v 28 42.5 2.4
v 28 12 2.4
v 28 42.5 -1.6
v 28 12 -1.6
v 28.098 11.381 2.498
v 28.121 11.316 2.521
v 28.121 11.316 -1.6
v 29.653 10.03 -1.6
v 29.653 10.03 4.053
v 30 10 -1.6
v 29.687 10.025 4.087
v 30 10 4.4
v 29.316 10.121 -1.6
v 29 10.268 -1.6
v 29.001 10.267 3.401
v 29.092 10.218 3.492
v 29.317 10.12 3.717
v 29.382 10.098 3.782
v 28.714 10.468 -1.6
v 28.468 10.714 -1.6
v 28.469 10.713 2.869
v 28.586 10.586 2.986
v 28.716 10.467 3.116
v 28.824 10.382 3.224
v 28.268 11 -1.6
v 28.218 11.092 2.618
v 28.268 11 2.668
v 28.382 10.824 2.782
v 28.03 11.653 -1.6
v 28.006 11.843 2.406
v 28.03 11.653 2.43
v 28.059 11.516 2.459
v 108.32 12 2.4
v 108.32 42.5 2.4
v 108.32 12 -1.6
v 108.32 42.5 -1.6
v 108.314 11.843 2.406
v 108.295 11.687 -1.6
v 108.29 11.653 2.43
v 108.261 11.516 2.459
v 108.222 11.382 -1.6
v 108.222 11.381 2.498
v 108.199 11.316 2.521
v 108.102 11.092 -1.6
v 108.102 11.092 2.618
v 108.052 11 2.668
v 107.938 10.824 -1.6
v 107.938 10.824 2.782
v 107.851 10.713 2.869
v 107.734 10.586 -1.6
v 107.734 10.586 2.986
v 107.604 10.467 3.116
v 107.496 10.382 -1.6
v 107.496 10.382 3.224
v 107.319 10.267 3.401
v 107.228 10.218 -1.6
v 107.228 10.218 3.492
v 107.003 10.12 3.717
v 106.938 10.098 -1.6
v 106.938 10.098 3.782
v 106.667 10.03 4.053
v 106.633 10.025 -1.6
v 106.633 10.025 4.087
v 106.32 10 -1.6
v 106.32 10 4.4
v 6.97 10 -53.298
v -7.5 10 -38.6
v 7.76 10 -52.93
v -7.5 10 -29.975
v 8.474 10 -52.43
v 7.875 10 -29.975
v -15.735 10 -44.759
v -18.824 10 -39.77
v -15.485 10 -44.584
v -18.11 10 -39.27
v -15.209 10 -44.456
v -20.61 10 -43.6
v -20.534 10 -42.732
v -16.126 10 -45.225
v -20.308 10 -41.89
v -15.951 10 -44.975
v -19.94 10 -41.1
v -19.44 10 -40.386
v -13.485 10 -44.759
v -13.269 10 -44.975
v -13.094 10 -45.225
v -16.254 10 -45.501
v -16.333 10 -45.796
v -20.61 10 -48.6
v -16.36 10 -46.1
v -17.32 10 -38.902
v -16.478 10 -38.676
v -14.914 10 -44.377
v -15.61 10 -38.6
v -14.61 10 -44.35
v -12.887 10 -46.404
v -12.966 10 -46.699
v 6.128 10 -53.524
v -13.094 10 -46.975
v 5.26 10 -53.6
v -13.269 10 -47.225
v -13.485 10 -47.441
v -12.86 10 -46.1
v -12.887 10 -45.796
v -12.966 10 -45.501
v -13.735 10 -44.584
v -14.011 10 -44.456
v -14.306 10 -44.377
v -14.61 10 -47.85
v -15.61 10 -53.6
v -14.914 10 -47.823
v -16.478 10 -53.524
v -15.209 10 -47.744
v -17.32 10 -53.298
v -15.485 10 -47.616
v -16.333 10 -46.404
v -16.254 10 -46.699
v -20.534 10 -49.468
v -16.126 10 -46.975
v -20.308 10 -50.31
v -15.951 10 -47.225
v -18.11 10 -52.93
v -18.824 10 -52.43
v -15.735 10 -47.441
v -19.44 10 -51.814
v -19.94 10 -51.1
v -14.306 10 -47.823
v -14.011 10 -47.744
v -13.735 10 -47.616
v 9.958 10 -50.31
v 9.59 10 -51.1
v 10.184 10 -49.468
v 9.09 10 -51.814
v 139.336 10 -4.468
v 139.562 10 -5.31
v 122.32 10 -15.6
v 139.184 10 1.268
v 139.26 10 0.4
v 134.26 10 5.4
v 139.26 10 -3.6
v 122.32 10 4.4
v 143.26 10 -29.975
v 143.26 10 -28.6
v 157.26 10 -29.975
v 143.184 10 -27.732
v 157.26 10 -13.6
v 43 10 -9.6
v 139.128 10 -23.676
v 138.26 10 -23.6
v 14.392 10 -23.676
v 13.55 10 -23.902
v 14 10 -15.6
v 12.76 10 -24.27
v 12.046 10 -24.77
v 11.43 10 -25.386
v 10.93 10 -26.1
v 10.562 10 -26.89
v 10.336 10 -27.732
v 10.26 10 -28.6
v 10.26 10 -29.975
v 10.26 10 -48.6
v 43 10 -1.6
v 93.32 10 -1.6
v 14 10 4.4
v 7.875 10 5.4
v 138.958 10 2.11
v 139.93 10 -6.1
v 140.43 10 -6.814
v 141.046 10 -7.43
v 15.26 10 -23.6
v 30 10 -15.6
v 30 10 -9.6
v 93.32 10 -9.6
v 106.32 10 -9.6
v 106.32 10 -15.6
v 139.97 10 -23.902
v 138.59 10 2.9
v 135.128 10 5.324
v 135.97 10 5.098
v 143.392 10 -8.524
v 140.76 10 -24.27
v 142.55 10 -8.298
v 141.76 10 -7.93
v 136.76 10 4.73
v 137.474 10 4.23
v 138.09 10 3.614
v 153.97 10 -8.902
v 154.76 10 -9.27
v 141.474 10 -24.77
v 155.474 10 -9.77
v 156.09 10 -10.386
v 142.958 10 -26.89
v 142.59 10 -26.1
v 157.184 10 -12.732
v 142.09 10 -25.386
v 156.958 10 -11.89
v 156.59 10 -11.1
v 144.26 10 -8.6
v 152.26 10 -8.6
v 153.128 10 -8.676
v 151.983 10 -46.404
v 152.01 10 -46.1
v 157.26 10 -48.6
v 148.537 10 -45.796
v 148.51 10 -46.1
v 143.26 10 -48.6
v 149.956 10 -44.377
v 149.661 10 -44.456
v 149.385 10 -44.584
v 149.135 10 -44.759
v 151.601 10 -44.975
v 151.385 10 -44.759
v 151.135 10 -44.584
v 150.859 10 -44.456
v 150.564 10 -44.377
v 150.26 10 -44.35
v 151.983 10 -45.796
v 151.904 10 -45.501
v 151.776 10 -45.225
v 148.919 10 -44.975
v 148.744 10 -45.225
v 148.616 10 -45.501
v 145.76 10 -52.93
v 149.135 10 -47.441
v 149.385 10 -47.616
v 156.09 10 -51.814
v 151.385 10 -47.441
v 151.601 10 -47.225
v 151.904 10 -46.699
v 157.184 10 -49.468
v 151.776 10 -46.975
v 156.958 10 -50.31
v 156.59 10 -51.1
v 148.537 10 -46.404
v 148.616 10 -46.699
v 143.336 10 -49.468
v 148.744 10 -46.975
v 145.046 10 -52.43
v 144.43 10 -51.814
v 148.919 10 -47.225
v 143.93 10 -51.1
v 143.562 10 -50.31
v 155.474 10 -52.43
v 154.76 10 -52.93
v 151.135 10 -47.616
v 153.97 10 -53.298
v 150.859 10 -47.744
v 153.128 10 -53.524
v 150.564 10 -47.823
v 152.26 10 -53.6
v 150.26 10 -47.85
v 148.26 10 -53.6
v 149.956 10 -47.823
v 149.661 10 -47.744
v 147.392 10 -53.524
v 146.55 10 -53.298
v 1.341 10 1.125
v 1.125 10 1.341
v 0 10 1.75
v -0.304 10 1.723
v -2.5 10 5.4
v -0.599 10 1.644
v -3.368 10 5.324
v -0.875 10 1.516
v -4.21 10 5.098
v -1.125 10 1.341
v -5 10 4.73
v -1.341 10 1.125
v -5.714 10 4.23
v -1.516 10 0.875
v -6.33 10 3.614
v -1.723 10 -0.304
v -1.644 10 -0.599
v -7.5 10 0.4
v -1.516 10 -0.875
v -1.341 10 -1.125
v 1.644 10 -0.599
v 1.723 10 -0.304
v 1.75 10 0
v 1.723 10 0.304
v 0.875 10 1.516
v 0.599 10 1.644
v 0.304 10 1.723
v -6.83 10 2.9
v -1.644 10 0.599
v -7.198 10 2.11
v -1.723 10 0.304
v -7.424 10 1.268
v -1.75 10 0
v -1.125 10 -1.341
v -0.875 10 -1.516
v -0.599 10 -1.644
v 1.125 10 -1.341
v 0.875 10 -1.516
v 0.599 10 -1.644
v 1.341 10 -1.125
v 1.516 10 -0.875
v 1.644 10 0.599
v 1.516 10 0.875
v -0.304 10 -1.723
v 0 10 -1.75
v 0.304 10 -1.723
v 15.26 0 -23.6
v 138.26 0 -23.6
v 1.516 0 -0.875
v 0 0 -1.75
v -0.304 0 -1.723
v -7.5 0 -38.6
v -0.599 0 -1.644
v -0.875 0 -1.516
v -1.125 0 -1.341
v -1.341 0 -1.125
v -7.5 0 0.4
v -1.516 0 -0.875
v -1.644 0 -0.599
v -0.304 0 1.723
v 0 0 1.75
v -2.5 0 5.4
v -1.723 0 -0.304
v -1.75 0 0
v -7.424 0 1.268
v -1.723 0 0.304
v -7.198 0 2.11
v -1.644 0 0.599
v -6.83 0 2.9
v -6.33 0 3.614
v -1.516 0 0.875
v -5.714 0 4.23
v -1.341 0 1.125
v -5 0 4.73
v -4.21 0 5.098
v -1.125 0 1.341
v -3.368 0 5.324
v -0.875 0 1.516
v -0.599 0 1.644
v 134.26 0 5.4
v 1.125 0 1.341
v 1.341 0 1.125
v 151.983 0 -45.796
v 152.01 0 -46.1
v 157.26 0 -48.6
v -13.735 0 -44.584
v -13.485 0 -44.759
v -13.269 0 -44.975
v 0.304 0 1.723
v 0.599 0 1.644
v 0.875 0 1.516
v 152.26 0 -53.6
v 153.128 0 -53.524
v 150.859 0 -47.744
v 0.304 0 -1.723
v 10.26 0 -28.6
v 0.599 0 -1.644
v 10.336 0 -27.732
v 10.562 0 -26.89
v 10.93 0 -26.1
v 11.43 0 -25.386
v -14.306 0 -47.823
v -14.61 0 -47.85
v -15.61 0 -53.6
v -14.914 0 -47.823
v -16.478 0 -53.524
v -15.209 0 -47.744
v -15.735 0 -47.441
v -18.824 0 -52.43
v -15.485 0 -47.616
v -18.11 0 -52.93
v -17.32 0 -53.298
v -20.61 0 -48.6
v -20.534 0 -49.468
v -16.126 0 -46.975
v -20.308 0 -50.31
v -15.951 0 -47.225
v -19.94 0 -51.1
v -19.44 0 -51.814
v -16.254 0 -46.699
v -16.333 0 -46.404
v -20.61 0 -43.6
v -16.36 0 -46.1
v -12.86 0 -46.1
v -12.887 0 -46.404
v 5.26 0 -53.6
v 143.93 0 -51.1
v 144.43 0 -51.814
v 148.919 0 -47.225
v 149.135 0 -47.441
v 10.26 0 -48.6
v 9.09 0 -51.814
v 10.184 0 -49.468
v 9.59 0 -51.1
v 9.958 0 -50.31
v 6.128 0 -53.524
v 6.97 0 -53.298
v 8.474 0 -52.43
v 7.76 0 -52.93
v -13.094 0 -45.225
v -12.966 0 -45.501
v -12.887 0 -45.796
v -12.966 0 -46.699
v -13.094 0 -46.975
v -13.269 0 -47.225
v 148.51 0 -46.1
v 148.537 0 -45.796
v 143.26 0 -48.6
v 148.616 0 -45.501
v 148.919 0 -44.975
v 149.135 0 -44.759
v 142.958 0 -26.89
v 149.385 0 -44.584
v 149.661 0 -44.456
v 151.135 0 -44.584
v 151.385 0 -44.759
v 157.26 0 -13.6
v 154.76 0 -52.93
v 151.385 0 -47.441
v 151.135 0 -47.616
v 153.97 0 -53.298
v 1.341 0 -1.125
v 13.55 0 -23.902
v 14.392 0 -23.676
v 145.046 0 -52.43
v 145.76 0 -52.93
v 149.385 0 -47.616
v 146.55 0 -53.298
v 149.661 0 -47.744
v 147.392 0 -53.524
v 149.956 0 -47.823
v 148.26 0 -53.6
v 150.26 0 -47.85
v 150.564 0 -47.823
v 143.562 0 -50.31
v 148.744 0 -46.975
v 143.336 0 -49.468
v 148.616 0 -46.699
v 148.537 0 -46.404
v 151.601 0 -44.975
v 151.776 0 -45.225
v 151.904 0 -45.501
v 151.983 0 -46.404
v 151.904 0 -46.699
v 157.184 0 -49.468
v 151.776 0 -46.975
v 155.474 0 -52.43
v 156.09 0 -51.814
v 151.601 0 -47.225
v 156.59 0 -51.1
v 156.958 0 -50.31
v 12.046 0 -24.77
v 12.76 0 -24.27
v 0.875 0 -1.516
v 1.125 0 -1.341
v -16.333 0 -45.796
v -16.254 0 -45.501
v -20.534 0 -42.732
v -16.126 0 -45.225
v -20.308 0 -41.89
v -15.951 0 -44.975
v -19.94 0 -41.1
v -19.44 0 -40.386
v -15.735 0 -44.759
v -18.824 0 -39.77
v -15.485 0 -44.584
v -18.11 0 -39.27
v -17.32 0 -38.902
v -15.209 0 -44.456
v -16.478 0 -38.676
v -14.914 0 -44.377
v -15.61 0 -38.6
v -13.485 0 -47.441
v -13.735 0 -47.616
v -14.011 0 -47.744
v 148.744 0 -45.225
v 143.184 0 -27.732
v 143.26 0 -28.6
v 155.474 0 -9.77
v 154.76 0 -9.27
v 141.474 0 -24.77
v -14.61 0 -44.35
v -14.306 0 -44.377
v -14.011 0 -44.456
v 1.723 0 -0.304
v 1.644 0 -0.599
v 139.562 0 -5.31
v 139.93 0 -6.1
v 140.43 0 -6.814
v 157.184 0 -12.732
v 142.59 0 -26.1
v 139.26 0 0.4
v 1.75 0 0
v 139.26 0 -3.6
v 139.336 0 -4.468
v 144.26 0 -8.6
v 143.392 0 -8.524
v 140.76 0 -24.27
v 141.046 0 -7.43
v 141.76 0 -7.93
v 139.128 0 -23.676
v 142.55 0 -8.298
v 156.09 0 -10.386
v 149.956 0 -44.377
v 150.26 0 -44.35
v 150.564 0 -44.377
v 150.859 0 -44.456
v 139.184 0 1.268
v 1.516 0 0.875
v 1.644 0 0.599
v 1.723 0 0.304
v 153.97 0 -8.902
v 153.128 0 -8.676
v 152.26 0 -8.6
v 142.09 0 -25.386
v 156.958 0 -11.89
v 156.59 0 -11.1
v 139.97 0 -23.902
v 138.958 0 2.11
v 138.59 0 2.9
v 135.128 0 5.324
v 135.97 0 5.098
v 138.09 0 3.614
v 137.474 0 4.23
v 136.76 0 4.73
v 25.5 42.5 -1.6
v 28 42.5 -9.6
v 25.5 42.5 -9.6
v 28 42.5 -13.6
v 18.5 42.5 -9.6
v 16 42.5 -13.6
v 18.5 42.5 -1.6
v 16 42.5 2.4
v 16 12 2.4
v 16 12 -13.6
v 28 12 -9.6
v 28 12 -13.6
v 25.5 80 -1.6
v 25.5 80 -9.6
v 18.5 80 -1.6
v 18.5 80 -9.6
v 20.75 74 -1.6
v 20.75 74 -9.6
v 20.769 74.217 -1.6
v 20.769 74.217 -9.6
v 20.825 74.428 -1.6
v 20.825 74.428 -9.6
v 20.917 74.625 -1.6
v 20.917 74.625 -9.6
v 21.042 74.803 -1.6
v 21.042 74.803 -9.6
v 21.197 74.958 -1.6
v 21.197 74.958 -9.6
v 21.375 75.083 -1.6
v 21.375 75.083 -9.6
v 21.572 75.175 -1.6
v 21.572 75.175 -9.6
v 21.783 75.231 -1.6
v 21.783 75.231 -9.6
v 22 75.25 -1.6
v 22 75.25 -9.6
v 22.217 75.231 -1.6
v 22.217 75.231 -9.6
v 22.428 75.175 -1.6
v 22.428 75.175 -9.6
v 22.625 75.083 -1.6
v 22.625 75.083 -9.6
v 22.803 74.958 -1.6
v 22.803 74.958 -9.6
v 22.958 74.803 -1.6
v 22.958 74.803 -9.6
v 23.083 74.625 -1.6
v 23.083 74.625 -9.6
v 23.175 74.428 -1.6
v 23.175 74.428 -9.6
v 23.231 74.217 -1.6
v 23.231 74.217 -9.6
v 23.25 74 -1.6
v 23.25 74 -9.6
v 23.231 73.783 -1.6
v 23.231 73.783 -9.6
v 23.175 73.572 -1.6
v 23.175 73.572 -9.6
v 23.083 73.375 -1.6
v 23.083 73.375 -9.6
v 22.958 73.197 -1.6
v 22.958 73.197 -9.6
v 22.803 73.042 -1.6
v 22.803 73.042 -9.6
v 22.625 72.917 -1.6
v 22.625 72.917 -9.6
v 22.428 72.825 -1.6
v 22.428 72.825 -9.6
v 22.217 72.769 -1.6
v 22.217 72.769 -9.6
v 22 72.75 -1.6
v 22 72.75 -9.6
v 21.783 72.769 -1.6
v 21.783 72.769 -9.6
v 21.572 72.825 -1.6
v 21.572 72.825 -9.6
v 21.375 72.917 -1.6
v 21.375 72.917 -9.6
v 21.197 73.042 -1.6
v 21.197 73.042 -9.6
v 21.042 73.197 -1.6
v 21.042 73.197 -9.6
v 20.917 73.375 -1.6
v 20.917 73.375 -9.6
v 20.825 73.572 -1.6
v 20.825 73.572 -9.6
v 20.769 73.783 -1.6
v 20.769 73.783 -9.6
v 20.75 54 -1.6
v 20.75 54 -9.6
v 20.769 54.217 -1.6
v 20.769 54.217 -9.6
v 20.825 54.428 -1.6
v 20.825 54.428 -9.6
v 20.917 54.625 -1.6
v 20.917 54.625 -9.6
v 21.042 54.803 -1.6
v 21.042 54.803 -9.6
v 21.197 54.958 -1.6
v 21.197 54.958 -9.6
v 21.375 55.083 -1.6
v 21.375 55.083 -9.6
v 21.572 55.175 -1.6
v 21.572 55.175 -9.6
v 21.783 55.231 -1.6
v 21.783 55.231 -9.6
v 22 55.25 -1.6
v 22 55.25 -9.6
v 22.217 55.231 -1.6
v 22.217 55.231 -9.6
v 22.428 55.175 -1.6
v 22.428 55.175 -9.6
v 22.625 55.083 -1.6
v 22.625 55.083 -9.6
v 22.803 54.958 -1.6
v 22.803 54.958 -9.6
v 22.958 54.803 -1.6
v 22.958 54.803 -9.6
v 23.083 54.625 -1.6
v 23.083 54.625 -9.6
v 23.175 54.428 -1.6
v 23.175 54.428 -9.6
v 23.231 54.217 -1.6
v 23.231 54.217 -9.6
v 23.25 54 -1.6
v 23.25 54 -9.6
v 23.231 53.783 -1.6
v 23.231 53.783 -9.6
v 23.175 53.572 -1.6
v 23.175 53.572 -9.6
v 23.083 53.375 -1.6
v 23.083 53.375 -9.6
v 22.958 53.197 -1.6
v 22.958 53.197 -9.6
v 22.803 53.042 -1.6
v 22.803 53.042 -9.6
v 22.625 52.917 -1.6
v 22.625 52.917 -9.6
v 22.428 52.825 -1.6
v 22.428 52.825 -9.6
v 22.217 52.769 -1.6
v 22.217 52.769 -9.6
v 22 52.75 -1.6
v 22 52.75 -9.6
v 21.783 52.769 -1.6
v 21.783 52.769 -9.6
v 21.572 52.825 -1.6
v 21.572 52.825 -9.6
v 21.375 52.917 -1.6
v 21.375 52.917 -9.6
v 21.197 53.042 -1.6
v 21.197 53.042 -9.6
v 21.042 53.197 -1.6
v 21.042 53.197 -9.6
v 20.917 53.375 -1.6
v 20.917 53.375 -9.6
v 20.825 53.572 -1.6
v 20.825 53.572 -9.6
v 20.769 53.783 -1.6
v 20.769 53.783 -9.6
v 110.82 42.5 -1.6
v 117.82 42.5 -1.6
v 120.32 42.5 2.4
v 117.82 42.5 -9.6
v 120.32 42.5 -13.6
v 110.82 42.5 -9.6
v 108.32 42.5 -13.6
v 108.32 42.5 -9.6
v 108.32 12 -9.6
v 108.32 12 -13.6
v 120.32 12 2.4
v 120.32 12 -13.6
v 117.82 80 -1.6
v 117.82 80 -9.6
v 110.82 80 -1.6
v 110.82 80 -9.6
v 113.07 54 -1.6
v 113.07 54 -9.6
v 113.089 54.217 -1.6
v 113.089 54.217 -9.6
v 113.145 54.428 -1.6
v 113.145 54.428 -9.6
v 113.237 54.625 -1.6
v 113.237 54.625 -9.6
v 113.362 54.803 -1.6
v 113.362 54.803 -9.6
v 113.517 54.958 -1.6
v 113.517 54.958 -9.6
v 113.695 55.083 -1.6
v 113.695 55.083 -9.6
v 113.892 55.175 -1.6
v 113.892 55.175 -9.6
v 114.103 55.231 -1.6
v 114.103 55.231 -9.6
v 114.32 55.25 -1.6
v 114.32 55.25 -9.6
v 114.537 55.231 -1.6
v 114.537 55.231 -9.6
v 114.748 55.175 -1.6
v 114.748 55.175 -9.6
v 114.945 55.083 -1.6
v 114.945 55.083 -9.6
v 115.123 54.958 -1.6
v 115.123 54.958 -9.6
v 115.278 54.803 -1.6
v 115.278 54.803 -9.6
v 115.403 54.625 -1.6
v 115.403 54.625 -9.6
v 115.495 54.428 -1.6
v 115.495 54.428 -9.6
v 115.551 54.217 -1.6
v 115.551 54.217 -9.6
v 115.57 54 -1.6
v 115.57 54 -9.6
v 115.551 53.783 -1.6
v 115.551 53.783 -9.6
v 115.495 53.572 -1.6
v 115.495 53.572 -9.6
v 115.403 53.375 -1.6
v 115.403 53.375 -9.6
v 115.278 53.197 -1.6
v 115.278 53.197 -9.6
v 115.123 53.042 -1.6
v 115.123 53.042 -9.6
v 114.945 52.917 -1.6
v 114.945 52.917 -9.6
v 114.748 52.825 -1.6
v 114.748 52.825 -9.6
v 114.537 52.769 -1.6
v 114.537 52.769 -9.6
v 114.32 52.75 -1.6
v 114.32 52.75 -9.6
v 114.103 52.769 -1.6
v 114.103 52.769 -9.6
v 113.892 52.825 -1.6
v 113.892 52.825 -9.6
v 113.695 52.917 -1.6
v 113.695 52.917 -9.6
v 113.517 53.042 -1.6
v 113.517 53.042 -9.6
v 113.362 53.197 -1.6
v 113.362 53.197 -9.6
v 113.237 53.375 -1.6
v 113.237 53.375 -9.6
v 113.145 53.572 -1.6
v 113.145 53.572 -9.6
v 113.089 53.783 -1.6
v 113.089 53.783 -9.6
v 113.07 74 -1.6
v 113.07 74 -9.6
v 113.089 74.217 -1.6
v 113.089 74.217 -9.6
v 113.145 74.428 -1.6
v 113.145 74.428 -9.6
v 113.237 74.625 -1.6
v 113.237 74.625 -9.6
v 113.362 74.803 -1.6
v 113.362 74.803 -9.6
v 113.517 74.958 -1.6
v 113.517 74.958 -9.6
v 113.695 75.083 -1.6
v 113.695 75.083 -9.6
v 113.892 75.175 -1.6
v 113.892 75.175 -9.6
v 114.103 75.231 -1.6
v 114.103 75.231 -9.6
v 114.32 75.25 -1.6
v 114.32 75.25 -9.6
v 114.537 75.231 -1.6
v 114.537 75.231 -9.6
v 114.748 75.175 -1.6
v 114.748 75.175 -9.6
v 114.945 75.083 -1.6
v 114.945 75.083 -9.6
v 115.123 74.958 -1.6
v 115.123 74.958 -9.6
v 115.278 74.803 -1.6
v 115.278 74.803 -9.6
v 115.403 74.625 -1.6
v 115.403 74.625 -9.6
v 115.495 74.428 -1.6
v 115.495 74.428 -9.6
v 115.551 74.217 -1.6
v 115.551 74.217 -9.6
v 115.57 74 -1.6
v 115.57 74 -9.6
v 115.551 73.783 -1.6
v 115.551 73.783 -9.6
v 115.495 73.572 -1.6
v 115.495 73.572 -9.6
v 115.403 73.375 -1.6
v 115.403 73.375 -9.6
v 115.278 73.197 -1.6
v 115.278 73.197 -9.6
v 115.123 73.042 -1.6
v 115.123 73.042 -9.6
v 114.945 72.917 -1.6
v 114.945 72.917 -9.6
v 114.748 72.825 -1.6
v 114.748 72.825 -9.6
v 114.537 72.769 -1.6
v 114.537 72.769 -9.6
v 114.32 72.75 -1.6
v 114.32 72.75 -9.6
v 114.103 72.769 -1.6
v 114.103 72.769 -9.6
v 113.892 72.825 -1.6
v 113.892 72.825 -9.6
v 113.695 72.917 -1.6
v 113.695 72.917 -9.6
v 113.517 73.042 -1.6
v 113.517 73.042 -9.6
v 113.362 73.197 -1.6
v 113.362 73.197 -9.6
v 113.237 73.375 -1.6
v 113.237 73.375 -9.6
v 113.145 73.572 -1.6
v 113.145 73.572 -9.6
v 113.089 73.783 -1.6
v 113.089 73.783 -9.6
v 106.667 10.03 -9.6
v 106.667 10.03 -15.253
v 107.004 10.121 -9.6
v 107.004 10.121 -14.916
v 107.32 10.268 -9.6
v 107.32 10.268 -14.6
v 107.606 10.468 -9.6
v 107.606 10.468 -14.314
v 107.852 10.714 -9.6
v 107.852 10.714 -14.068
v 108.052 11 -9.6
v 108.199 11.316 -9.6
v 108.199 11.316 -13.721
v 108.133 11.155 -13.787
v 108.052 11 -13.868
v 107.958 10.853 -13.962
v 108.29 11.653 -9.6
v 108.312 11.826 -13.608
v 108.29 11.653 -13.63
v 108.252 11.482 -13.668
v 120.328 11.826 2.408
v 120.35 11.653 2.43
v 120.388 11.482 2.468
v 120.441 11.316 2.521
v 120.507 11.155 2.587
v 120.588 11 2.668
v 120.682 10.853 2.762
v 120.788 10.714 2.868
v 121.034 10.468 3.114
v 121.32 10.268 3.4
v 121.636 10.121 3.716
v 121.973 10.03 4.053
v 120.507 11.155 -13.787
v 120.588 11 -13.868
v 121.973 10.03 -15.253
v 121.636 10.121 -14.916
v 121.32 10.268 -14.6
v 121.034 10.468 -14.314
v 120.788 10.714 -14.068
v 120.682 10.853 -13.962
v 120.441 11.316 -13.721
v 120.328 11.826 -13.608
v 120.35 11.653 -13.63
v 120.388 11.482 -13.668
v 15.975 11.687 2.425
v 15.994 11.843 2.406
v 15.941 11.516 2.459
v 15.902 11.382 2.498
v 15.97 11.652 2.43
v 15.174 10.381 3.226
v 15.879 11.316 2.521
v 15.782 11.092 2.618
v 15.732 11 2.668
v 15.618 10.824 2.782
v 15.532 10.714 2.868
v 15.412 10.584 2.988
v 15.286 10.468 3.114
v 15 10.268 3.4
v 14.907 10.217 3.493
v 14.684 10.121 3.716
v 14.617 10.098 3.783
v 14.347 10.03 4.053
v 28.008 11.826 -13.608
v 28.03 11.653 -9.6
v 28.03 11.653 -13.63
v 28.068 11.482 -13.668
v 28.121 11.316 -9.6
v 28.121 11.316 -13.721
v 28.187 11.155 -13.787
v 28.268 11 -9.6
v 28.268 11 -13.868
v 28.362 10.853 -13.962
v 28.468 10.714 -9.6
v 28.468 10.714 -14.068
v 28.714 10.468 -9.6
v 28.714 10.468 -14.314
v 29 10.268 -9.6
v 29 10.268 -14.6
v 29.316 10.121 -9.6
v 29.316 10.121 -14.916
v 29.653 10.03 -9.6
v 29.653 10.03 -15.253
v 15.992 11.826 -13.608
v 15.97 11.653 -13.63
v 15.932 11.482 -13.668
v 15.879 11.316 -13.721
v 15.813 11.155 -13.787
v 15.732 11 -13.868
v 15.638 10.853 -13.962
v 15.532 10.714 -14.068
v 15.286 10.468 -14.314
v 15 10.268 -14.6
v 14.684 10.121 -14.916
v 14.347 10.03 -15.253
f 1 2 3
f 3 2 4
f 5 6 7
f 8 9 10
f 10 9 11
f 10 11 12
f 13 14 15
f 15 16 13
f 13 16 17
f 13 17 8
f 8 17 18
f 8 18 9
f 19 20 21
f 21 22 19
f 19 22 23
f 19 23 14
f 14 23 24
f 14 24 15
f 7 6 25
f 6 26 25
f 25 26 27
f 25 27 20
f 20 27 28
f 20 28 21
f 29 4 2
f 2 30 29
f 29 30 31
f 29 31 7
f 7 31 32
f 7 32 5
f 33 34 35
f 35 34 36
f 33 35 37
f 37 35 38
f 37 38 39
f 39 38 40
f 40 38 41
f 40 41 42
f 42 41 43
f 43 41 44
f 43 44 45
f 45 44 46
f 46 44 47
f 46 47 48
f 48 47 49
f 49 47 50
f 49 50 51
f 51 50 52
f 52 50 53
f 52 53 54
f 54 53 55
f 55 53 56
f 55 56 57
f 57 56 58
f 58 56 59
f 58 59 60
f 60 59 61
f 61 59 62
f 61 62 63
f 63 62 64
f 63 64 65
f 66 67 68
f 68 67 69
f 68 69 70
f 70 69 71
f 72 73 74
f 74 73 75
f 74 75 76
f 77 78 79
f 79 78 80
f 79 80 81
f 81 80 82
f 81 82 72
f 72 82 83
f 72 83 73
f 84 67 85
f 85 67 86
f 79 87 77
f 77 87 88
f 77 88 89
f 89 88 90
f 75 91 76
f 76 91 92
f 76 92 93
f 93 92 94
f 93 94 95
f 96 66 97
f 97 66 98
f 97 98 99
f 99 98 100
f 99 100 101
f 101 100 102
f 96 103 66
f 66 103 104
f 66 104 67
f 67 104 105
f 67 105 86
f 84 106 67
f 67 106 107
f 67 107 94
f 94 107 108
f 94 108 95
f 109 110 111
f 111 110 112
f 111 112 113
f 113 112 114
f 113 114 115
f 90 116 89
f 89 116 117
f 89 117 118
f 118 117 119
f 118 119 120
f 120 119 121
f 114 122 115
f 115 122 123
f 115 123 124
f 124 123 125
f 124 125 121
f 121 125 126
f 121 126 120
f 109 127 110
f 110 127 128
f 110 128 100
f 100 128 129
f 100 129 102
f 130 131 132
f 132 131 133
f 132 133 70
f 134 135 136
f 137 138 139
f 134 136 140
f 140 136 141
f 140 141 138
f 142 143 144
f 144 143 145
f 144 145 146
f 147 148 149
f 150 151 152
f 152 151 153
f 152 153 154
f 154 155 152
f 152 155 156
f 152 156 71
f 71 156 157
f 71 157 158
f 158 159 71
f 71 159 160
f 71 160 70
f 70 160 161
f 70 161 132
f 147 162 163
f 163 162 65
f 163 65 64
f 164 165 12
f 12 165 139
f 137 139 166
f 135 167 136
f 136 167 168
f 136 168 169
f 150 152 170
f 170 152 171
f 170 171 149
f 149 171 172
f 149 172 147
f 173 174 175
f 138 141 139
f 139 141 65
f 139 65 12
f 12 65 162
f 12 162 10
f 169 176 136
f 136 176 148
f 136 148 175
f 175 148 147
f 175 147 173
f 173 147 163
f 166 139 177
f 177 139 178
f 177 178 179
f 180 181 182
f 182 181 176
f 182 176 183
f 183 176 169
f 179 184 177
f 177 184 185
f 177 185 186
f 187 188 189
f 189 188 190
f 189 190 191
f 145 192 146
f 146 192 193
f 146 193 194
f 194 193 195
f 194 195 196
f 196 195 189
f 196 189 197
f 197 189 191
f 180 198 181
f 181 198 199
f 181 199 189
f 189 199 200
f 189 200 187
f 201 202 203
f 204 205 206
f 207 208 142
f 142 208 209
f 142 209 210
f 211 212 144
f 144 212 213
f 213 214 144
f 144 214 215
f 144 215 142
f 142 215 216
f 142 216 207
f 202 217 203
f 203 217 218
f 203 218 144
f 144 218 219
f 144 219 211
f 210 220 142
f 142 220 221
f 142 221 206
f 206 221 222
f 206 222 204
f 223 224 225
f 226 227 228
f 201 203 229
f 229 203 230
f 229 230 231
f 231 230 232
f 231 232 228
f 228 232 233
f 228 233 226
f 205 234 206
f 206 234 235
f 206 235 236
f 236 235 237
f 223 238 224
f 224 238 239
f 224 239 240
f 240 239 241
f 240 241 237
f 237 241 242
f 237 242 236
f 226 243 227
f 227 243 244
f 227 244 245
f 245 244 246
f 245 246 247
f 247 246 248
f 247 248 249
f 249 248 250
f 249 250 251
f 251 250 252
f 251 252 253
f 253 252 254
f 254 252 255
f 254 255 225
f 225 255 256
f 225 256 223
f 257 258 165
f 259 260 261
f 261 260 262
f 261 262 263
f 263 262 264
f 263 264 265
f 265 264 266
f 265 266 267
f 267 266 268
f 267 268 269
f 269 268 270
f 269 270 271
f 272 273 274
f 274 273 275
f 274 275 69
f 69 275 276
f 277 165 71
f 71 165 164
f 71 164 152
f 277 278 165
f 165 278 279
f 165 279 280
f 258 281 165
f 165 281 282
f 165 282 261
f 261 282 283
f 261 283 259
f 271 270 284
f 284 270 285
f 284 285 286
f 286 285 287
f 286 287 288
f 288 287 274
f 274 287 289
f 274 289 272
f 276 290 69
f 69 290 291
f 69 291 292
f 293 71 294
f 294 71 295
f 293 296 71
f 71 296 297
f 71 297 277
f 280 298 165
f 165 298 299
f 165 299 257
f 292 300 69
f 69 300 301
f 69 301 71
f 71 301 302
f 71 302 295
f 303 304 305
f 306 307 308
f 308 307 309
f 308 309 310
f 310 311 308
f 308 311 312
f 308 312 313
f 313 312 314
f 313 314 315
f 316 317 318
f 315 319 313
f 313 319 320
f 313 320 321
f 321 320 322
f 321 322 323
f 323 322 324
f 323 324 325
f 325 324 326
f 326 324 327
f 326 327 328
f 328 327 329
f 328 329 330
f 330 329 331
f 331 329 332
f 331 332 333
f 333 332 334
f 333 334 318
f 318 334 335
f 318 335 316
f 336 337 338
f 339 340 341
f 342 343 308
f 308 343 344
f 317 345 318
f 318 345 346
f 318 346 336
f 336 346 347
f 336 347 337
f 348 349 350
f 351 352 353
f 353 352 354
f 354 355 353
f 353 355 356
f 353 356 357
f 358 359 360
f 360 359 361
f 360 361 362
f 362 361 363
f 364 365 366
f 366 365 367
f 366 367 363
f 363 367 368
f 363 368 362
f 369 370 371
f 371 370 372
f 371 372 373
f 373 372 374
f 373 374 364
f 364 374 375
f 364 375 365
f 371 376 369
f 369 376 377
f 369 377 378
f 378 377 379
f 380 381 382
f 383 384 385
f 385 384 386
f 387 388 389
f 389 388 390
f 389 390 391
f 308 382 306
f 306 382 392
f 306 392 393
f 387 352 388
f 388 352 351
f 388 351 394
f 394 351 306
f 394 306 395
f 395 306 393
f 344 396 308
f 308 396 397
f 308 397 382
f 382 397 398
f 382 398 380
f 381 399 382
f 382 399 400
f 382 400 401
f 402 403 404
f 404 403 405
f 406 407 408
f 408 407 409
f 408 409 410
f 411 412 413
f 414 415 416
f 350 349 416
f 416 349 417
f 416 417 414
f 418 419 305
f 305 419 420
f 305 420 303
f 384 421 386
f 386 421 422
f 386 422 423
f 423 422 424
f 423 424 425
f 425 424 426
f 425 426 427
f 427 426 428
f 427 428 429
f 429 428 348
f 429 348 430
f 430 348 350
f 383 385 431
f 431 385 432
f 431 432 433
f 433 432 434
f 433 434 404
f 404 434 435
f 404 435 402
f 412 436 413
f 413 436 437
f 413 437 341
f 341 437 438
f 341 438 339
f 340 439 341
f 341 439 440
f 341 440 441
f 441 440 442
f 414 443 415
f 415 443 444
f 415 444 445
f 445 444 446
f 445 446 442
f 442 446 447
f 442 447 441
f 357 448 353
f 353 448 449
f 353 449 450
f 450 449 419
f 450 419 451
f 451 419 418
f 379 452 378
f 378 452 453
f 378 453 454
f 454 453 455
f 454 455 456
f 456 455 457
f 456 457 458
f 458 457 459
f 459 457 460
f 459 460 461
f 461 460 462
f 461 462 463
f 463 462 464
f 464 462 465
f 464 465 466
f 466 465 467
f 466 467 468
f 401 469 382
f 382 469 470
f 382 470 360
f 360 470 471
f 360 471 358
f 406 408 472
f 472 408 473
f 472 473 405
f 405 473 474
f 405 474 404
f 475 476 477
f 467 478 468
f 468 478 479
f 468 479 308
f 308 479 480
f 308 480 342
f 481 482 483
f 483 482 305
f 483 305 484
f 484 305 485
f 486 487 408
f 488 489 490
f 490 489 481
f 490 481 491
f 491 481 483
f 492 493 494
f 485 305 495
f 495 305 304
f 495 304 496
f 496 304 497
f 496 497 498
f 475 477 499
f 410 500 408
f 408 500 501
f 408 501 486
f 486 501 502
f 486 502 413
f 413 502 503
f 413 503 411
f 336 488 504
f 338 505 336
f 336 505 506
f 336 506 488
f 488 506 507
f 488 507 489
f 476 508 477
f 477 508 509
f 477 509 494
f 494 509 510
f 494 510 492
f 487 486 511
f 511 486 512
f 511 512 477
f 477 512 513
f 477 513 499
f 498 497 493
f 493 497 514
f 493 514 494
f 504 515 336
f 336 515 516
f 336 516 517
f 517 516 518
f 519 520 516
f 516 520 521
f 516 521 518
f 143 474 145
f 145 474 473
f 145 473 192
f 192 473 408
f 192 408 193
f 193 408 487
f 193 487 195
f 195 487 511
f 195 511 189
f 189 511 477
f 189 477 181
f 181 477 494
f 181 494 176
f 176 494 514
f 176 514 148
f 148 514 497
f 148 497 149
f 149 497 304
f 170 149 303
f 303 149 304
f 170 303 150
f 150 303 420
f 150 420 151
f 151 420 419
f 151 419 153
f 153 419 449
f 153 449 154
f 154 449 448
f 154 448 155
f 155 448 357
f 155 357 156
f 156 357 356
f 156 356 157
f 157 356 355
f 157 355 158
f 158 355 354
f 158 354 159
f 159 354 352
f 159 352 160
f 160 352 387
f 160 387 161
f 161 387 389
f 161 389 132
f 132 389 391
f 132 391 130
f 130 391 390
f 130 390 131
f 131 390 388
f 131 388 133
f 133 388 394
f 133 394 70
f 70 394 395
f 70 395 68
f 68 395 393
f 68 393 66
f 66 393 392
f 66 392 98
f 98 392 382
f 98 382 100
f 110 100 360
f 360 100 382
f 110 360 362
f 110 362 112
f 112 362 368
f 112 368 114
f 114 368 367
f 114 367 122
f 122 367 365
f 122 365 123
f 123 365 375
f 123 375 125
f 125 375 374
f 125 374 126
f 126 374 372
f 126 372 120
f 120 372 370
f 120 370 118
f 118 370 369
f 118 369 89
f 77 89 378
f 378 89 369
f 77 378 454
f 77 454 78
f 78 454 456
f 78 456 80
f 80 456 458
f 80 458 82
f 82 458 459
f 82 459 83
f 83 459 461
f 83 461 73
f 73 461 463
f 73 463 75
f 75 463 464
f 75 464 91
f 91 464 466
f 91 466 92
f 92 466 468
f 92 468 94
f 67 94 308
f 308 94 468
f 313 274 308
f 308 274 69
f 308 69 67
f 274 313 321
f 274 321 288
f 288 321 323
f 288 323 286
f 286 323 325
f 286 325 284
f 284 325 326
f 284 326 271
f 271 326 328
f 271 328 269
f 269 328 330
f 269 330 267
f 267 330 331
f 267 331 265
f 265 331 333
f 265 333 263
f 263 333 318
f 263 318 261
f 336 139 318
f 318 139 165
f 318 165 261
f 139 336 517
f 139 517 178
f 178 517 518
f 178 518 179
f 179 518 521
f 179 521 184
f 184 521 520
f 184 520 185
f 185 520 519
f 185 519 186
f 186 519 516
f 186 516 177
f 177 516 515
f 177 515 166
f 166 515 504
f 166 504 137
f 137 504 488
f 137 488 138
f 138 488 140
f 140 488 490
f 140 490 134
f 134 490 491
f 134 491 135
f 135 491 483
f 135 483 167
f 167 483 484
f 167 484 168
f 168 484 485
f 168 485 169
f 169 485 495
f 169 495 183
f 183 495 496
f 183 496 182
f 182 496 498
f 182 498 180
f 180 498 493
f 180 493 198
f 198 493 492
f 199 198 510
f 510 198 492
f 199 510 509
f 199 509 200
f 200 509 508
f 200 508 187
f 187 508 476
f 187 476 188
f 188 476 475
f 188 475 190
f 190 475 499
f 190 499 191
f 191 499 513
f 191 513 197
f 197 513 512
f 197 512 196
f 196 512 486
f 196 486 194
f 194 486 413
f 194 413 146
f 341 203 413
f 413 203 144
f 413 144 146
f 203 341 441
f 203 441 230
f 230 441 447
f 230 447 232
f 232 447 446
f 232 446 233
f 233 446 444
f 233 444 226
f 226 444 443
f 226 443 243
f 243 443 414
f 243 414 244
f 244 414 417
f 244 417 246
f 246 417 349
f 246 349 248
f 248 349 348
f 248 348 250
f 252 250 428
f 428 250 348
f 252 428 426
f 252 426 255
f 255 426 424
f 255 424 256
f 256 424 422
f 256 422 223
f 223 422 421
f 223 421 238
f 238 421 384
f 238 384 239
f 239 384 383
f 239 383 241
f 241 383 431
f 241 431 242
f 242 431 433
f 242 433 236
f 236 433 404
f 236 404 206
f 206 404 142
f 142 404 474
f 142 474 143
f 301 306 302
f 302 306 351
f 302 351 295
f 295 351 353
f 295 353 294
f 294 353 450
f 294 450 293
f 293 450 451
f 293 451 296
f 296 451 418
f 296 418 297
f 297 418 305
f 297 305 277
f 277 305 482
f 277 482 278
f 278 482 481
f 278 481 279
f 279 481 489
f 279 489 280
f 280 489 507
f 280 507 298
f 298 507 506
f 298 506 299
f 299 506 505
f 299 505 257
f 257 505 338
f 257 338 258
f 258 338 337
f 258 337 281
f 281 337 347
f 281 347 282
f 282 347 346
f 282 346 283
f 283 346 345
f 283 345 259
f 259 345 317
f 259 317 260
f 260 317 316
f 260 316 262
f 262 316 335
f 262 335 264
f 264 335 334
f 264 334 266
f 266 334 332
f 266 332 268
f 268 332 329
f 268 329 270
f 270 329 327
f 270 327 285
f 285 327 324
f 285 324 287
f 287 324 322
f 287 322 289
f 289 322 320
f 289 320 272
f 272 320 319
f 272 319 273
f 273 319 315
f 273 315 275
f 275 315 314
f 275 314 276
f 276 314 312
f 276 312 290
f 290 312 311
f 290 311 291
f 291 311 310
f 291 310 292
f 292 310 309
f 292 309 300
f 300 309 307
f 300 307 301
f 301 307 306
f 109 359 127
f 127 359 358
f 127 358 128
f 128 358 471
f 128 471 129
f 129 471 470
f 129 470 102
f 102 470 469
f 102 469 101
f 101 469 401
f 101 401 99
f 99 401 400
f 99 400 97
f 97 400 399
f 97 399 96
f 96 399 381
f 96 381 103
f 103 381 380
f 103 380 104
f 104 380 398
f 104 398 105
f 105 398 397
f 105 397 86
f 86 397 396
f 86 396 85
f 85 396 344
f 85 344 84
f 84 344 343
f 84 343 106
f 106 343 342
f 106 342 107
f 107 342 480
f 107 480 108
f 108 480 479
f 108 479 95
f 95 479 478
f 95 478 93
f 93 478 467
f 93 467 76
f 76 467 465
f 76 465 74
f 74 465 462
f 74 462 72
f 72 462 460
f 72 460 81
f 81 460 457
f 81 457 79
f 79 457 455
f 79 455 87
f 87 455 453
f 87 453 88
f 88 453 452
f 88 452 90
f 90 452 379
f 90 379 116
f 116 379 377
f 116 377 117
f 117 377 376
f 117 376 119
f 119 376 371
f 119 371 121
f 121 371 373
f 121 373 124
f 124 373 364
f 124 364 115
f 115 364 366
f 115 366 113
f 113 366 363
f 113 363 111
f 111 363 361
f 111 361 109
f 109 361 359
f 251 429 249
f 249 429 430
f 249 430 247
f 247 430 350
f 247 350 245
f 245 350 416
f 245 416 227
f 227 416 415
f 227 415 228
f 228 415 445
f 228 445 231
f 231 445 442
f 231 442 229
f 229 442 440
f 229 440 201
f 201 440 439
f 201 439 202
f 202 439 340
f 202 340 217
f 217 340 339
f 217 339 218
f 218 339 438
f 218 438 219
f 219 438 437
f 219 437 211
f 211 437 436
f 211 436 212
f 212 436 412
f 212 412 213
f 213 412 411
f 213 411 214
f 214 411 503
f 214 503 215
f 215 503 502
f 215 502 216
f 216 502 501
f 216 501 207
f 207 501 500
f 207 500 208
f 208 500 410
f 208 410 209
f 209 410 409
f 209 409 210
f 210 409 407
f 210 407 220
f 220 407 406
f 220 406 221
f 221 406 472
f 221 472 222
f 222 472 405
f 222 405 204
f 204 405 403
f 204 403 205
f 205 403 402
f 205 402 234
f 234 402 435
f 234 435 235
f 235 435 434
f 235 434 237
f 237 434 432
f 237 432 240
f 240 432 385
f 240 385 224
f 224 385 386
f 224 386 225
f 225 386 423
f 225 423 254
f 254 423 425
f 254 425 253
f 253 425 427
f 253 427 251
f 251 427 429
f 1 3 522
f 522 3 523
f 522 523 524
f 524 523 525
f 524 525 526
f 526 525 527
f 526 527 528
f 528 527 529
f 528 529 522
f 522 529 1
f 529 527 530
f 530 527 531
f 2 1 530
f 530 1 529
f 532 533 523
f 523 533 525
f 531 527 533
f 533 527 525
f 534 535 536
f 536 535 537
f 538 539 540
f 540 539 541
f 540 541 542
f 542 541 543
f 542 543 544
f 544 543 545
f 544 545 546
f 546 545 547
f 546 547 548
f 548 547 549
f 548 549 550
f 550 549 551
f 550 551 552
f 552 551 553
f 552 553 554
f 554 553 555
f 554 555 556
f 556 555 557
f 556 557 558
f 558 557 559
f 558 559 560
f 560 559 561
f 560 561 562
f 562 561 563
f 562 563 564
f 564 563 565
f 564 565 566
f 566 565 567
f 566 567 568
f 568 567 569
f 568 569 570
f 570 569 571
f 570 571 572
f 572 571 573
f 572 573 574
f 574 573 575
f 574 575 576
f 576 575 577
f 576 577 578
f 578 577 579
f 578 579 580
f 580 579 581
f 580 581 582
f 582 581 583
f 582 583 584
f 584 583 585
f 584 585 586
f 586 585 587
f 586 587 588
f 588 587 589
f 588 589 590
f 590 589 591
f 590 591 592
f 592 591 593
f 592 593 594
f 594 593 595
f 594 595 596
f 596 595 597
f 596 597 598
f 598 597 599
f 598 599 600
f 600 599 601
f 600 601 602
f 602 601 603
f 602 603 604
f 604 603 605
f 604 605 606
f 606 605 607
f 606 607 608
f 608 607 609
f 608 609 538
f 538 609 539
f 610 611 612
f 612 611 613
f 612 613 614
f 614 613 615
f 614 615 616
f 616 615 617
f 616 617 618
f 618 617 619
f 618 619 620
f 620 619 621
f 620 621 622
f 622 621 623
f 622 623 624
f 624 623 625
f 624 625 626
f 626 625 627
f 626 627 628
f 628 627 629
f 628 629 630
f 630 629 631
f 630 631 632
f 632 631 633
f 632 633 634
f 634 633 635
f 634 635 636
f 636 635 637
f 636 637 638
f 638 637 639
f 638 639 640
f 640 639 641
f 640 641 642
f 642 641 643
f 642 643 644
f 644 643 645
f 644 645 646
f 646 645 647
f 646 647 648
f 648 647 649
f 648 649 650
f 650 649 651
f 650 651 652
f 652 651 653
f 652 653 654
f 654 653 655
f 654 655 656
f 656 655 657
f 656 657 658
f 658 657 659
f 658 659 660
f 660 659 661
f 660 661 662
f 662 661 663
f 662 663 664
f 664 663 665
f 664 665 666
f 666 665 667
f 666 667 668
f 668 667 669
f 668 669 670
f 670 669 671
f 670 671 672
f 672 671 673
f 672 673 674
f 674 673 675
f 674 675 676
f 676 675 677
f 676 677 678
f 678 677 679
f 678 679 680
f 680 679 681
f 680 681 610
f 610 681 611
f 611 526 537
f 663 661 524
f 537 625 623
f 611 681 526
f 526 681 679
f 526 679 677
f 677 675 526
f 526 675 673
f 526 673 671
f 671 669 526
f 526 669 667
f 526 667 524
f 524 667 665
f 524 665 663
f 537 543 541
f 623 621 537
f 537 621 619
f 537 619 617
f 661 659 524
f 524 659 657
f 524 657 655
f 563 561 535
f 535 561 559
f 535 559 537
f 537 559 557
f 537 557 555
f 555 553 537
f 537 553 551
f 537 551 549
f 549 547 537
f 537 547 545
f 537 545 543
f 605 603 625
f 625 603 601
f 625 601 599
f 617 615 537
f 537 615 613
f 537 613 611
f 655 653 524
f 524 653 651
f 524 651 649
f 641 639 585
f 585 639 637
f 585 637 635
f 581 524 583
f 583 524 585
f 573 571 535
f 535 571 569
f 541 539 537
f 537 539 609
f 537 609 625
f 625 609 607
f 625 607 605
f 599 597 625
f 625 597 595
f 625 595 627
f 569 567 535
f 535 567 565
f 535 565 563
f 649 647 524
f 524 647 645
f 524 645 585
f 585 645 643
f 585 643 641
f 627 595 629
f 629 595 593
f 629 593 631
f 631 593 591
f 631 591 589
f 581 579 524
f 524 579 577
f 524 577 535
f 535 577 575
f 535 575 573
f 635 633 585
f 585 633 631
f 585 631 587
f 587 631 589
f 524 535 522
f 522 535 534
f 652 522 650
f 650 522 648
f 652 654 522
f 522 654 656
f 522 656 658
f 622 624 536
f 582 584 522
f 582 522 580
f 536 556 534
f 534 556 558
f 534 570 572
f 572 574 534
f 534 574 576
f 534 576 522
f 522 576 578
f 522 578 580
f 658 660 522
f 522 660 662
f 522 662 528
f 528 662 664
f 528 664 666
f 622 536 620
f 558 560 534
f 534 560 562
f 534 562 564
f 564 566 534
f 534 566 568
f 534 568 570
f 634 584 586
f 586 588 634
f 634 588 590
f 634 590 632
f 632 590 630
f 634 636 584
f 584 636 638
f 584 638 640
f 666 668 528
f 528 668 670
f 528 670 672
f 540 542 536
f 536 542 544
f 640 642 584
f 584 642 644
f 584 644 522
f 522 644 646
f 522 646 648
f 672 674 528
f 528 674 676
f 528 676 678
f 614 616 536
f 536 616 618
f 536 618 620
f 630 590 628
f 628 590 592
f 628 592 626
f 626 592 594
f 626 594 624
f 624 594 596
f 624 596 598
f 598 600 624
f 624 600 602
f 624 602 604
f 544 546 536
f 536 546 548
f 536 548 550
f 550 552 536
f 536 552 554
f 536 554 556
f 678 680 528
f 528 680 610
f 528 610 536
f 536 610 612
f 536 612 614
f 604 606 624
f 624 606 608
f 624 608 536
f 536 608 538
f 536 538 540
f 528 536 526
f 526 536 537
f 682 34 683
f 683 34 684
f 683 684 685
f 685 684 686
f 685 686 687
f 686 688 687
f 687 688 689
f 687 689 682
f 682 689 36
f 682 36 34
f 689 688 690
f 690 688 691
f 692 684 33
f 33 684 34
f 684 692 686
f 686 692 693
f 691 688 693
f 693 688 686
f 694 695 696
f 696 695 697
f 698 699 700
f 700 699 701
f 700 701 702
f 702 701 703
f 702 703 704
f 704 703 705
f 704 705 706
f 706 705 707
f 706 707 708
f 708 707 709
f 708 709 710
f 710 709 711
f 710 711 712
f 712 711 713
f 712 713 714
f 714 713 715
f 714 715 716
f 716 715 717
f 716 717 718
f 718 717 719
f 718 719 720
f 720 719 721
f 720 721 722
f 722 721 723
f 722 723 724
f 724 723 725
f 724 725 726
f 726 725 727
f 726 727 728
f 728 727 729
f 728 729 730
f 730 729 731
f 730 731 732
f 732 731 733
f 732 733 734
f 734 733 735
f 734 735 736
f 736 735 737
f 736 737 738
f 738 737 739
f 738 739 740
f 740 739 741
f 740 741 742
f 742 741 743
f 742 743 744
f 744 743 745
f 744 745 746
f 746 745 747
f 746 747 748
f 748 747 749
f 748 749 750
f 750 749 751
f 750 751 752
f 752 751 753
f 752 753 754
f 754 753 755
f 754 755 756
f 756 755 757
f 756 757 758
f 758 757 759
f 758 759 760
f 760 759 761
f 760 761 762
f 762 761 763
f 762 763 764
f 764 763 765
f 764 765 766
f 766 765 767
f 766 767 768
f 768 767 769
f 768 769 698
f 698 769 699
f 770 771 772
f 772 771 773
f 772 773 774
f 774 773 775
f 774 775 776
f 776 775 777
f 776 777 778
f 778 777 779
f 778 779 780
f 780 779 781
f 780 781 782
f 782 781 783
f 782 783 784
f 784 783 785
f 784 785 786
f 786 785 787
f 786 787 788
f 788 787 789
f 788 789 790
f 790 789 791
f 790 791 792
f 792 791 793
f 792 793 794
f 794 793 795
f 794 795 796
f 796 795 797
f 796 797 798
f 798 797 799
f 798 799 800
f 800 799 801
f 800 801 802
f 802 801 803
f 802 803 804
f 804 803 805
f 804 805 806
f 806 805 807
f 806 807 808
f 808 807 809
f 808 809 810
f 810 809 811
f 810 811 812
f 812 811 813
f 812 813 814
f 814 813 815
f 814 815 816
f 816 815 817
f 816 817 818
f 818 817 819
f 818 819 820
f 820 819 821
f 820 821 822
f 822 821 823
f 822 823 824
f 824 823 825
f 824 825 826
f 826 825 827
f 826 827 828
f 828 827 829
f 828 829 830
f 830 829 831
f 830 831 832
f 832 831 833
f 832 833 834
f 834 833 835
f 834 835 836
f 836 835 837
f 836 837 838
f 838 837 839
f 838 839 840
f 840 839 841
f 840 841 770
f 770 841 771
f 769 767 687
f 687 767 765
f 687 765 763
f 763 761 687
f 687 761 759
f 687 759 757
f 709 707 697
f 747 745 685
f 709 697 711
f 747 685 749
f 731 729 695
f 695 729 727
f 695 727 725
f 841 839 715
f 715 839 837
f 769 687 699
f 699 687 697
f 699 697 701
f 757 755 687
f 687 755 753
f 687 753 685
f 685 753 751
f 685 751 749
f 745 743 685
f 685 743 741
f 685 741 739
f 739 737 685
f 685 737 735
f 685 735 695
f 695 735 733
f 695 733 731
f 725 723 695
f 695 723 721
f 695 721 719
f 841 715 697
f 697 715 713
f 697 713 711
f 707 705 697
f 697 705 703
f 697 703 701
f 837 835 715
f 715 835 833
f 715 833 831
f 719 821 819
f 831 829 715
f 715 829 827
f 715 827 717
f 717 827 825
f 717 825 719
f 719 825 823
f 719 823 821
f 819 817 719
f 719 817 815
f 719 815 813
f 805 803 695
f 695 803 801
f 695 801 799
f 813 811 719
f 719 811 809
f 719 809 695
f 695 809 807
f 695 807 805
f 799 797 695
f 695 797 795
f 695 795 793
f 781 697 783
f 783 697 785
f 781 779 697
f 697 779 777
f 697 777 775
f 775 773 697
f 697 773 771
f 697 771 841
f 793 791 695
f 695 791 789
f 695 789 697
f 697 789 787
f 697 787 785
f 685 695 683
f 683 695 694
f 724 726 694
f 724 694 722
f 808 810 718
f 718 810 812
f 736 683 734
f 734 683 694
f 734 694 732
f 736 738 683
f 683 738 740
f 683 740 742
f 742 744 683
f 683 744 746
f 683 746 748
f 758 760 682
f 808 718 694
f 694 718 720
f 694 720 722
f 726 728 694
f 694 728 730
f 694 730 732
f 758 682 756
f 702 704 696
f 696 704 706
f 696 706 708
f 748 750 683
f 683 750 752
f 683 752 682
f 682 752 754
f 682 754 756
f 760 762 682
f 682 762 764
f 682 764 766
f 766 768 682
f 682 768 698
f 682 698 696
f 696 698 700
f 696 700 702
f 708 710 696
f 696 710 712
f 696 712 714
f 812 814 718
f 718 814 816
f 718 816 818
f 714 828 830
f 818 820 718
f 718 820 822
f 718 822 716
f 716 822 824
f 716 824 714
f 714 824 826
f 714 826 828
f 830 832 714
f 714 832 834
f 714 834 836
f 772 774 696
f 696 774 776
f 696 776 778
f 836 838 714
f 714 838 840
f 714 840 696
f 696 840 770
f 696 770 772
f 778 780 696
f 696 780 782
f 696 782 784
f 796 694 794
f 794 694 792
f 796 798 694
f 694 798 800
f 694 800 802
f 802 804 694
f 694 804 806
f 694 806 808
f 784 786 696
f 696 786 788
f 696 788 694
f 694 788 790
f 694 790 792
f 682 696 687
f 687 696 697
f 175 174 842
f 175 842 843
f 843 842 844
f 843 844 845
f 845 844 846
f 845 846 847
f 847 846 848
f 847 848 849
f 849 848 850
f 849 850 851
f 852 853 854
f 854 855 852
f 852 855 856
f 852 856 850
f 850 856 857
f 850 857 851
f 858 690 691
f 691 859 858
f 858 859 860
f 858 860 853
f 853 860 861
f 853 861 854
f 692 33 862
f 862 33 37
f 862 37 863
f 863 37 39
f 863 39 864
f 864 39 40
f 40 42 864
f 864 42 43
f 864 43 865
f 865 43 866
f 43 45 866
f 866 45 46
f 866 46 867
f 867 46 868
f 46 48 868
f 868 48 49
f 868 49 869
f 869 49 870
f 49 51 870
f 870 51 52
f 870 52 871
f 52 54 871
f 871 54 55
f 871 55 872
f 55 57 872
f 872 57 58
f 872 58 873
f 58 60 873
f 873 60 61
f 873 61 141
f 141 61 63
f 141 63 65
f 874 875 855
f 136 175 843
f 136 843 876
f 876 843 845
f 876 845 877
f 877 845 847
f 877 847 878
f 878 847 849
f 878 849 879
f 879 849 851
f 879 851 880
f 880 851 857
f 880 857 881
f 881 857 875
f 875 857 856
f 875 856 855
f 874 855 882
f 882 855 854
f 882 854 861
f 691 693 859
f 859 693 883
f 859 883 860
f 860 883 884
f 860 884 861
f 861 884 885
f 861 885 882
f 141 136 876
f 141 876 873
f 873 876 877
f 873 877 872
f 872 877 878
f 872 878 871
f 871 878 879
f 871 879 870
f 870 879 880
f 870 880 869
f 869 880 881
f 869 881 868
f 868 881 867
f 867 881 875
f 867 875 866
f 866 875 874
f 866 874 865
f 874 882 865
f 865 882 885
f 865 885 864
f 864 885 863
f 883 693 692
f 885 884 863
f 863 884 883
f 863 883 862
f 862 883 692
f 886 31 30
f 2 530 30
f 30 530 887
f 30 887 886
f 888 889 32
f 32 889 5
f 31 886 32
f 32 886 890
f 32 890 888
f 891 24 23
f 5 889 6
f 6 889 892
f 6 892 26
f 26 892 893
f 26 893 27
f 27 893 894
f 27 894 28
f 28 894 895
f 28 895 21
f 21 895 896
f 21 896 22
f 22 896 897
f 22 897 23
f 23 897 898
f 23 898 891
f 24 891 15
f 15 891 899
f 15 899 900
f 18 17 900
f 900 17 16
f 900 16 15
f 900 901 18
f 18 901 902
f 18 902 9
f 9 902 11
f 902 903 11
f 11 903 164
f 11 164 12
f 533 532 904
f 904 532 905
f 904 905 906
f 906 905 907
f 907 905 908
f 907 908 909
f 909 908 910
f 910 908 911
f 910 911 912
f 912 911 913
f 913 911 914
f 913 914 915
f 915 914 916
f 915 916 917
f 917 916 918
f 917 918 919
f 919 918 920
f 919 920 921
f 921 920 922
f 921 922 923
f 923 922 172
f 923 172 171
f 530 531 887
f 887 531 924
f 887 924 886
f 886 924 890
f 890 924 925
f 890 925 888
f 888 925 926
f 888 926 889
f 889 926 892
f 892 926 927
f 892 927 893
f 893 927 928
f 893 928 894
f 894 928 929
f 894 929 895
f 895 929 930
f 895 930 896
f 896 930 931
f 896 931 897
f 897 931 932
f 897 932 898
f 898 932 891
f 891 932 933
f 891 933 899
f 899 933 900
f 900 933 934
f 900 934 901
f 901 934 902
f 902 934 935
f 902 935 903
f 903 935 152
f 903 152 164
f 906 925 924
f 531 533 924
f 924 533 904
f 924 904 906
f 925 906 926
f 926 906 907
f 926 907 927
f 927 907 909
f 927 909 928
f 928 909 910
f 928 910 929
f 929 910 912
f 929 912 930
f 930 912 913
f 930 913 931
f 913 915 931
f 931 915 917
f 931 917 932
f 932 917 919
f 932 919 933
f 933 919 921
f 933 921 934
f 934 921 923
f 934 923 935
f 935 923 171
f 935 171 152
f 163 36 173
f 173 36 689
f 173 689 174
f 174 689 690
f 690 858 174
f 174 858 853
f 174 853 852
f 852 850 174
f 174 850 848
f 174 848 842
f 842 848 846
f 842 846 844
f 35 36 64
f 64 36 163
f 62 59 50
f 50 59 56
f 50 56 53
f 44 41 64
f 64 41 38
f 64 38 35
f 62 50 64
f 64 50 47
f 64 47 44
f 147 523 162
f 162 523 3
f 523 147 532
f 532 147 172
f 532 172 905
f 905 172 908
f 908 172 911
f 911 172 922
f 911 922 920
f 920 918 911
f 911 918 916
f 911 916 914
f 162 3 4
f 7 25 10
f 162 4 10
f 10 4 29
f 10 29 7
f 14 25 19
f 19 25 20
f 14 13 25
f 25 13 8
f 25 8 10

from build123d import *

# Parameters (mm, degrees)
SKETCH1_R           = 1.75
BOSS_EXTRUDE1_DEPTH = 10
SKETCH3_W           = 7
SKETCH3_H           = 8
BOSS_EXTRUDE3_DEPTH = 70
CUT_EXTRUDE1_REACH  = 183.843
SKETCH4_R           = 1.25
SKETCH5_W           = 12
SKETCH5_H           = 16
BOSS_EXTRUDE4_DEPTH = 32.5
FILLET4_R           = 2
RIB1_REACH          = 184.852
SKETCH6_WALL_W      = 403.497752534
SKETCH6_WALL_H      = 8


with BuildPart() as part:
    # Sketch1 → Boss-Extrude1 (new body)
    with BuildSketch(Plane(origin=(0, 0, 0), x_dir=(1, 0, 0), z_dir=(0, 1, 0))):
        with BuildLine():
            Line((-7.5, -0.4), (-7.5, 38.6))
            Line((-7.5, 38.6), (-15.61, 38.6))
            ThreePointArc((-15.61, 38.6), (-19.145533906, 40.064466094), (-20.61, 43.6))
            Line((-20.61, 43.6), (-20.61, 48.6))
            ThreePointArc((-20.61, 48.6), (-19.145533906, 52.135533906), (-15.61, 53.6))
            Line((-15.61, 53.6), (5.26, 53.6))
            ThreePointArc((5.26, 53.6), (8.795533906, 52.135533906), (10.26, 48.6))
            Line((10.26, 48.6), (10.26, 28.6))
            ThreePointArc((10.26, 28.6), (11.724466094, 25.064466094), (15.26, 23.6))
            Line((15.26, 23.6), (138.26, 23.6))
            ThreePointArc((138.26, 23.6), (141.795533906, 25.064466094), (143.26, 28.6))
            Line((143.26, 28.6), (143.26, 48.6))
            ThreePointArc((143.26, 48.6), (144.724466094, 52.135533906), (148.26, 53.6))
            Line((148.26, 53.6), (152.26, 53.6))
            ThreePointArc((152.26, 53.6), (155.795533906, 52.135533906), (157.26, 48.6))
            Line((157.26, 48.6), (157.26, 13.6))
            ThreePointArc((157.26, 13.6), (155.795533906, 10.064466094), (152.26, 8.6))
            Line((152.26, 8.6), (144.26, 8.6))
            ThreePointArc((144.26, 8.6), (140.724466094, 7.135533906), (139.26, 3.6))
            Line((139.26, 3.6), (139.26, -0.4))
            ThreePointArc((139.26, -0.4), (137.795533906, -3.935533906), (134.26, -5.4))
            Line((134.26, -5.4), (-2.5, -5.4))
            ThreePointArc((-2.5, -5.4), (-6.035533906, -3.935533906), (-7.5, -0.4))
        make_face()
        with Locations(Location((0, 0, 0), (0, 0, 270))):
            Circle(SKETCH1_R, mode=Mode.SUBTRACT)
        with Locations(Location((-14.61, 46.1, 0), (0, 0, 270))):
            Circle(SKETCH1_R, mode=Mode.SUBTRACT)
        with Locations(Location((150.26, 46.1, 0), (0, 0, 270))):
            Circle(SKETCH1_R, mode=Mode.SUBTRACT)
    extrude(amount=BOSS_EXTRUDE1_DEPTH)

    # Sketch3 → Boss-Extrude3 (add)
    with BuildSketch(Plane(origin=(0, 10, 0), x_dir=(1, 0, 0), z_dir=(0, 1, 0))):
        with Locations((22, 5.6)):
            Rectangle(SKETCH3_W, SKETCH3_H)
        with Locations((114.32, 5.6)):
            Rectangle(SKETCH3_W, SKETCH3_H)
    extrude(amount=BOSS_EXTRUDE3_DEPTH)

    # Sketch4 → Cut-Extrude1 (cut, up to next)
    with BuildSketch(Plane(origin=(0, 0, -9.6), x_dir=(-1, 0, 0), z_dir=(0, 0, -1)), mode=Mode.PRIVATE) as cut_extrude1_sk1:
        with Locations((-22, 74)):
            Circle(SKETCH4_R)
    cut_extrude1_tool1 = extrude(cut_extrude1_sk1.sketch, amount=-CUT_EXTRUDE1_REACH, mode=Mode.PRIVATE) & part.part
    # Sketch4 → Cut-Extrude1 (cut, up to next)
    with BuildSketch(Plane(origin=(0, 0, -9.6), x_dir=(-1, 0, 0), z_dir=(0, 0, -1)), mode=Mode.PRIVATE) as cut_extrude1_sk2:
        with Locations((-22, 54)):
            Circle(SKETCH4_R)
    cut_extrude1_tool2 = extrude(cut_extrude1_sk2.sketch, amount=-CUT_EXTRUDE1_REACH, mode=Mode.PRIVATE) & part.part
    # Sketch4 → Cut-Extrude1 (cut, up to next)
    with BuildSketch(Plane(origin=(0, 0, -9.6), x_dir=(-1, 0, 0), z_dir=(0, 0, -1)), mode=Mode.PRIVATE) as cut_extrude1_sk3:
        with Locations((-114.32, 54)):
            Circle(SKETCH4_R)
    cut_extrude1_tool3 = extrude(cut_extrude1_sk3.sketch, amount=-CUT_EXTRUDE1_REACH, mode=Mode.PRIVATE) & part.part
    # Sketch4 → Cut-Extrude1 (cut, up to next)
    with BuildSketch(Plane(origin=(0, 0, -9.6), x_dir=(-1, 0, 0), z_dir=(0, 0, -1)), mode=Mode.PRIVATE) as cut_extrude1_sk4:
        with Locations((-114.32, 74)):
            Circle(SKETCH4_R)
    cut_extrude1_tool4 = extrude(cut_extrude1_sk4.sketch, amount=-CUT_EXTRUDE1_REACH, mode=Mode.PRIVATE) & part.part
    add(cut_extrude1_tool1.solids().sort_by_distance((22, 74, -9.6))[0], mode=Mode.SUBTRACT)
    add(cut_extrude1_tool2.solids().sort_by_distance((22, 54, -9.6))[0], mode=Mode.SUBTRACT)
    add(cut_extrude1_tool3.solids().sort_by_distance((114.32, 54, -9.6))[0], mode=Mode.SUBTRACT)
    add(cut_extrude1_tool4.solids().sort_by_distance((114.32, 74, -9.6))[0], mode=Mode.SUBTRACT)

    # Sketch5 → Boss-Extrude4 (add)
    with BuildSketch(Plane(origin=(0, 10, 0), x_dir=(1, 0, 0), z_dir=(0, 1, 0))):
        with Locations((22, 5.6)):
            Rectangle(SKETCH5_W, SKETCH5_H)
        with Locations((114.32, 5.6)):
            Rectangle(SKETCH5_W, SKETCH5_H)
    extrude(amount=BOSS_EXTRUDE4_DEPTH)

    # Fillet4
    fillet4_edges = [part.edges().sort_by_distance(p)[0] for p in [
        (16, 10, -5.6),
        (22, 10, 2.4),
        (28, 10, -5.6),
        (22, 10, -13.6),
        (108.32, 10, -5.6),
        (114.32, 10, 2.4),
        (120.32, 10, -5.6),
        (114.32, 10, -13.6),
    ]]
    fillet(fillet4_edges, radius=FILLET4_R)

    # Sketch6 wall → Rib1 (add, up to next)
    with BuildSketch(Plane(origin=(100.82, 26.25, -5.6), x_dir=(-0.419058177462, -0.9079593845, 0), z_dir=(-0.9079593845, 0.419058177462, 0)), mode=Mode.PRIVATE) as rib1_sk1:
        Rectangle(SKETCH6_WALL_W, SKETCH6_WALL_H)
    rib1_tool1 = extrude(rib1_sk1.sketch, amount=-RIB1_REACH, mode=Mode.PRIVATE) - part.part
    rib1 = rib1_tool1.solids().sort_by_distance((100.82, 26.25, -5.6))[0]
    add(rib1)

    # Mirror1: Rib1 across plane
    add(rib1.mirror(Plane(origin=(68.16, 0, 0), x_dir=(0, 0, 1), z_dir=(1, 0, 0))))


solid = part.part
